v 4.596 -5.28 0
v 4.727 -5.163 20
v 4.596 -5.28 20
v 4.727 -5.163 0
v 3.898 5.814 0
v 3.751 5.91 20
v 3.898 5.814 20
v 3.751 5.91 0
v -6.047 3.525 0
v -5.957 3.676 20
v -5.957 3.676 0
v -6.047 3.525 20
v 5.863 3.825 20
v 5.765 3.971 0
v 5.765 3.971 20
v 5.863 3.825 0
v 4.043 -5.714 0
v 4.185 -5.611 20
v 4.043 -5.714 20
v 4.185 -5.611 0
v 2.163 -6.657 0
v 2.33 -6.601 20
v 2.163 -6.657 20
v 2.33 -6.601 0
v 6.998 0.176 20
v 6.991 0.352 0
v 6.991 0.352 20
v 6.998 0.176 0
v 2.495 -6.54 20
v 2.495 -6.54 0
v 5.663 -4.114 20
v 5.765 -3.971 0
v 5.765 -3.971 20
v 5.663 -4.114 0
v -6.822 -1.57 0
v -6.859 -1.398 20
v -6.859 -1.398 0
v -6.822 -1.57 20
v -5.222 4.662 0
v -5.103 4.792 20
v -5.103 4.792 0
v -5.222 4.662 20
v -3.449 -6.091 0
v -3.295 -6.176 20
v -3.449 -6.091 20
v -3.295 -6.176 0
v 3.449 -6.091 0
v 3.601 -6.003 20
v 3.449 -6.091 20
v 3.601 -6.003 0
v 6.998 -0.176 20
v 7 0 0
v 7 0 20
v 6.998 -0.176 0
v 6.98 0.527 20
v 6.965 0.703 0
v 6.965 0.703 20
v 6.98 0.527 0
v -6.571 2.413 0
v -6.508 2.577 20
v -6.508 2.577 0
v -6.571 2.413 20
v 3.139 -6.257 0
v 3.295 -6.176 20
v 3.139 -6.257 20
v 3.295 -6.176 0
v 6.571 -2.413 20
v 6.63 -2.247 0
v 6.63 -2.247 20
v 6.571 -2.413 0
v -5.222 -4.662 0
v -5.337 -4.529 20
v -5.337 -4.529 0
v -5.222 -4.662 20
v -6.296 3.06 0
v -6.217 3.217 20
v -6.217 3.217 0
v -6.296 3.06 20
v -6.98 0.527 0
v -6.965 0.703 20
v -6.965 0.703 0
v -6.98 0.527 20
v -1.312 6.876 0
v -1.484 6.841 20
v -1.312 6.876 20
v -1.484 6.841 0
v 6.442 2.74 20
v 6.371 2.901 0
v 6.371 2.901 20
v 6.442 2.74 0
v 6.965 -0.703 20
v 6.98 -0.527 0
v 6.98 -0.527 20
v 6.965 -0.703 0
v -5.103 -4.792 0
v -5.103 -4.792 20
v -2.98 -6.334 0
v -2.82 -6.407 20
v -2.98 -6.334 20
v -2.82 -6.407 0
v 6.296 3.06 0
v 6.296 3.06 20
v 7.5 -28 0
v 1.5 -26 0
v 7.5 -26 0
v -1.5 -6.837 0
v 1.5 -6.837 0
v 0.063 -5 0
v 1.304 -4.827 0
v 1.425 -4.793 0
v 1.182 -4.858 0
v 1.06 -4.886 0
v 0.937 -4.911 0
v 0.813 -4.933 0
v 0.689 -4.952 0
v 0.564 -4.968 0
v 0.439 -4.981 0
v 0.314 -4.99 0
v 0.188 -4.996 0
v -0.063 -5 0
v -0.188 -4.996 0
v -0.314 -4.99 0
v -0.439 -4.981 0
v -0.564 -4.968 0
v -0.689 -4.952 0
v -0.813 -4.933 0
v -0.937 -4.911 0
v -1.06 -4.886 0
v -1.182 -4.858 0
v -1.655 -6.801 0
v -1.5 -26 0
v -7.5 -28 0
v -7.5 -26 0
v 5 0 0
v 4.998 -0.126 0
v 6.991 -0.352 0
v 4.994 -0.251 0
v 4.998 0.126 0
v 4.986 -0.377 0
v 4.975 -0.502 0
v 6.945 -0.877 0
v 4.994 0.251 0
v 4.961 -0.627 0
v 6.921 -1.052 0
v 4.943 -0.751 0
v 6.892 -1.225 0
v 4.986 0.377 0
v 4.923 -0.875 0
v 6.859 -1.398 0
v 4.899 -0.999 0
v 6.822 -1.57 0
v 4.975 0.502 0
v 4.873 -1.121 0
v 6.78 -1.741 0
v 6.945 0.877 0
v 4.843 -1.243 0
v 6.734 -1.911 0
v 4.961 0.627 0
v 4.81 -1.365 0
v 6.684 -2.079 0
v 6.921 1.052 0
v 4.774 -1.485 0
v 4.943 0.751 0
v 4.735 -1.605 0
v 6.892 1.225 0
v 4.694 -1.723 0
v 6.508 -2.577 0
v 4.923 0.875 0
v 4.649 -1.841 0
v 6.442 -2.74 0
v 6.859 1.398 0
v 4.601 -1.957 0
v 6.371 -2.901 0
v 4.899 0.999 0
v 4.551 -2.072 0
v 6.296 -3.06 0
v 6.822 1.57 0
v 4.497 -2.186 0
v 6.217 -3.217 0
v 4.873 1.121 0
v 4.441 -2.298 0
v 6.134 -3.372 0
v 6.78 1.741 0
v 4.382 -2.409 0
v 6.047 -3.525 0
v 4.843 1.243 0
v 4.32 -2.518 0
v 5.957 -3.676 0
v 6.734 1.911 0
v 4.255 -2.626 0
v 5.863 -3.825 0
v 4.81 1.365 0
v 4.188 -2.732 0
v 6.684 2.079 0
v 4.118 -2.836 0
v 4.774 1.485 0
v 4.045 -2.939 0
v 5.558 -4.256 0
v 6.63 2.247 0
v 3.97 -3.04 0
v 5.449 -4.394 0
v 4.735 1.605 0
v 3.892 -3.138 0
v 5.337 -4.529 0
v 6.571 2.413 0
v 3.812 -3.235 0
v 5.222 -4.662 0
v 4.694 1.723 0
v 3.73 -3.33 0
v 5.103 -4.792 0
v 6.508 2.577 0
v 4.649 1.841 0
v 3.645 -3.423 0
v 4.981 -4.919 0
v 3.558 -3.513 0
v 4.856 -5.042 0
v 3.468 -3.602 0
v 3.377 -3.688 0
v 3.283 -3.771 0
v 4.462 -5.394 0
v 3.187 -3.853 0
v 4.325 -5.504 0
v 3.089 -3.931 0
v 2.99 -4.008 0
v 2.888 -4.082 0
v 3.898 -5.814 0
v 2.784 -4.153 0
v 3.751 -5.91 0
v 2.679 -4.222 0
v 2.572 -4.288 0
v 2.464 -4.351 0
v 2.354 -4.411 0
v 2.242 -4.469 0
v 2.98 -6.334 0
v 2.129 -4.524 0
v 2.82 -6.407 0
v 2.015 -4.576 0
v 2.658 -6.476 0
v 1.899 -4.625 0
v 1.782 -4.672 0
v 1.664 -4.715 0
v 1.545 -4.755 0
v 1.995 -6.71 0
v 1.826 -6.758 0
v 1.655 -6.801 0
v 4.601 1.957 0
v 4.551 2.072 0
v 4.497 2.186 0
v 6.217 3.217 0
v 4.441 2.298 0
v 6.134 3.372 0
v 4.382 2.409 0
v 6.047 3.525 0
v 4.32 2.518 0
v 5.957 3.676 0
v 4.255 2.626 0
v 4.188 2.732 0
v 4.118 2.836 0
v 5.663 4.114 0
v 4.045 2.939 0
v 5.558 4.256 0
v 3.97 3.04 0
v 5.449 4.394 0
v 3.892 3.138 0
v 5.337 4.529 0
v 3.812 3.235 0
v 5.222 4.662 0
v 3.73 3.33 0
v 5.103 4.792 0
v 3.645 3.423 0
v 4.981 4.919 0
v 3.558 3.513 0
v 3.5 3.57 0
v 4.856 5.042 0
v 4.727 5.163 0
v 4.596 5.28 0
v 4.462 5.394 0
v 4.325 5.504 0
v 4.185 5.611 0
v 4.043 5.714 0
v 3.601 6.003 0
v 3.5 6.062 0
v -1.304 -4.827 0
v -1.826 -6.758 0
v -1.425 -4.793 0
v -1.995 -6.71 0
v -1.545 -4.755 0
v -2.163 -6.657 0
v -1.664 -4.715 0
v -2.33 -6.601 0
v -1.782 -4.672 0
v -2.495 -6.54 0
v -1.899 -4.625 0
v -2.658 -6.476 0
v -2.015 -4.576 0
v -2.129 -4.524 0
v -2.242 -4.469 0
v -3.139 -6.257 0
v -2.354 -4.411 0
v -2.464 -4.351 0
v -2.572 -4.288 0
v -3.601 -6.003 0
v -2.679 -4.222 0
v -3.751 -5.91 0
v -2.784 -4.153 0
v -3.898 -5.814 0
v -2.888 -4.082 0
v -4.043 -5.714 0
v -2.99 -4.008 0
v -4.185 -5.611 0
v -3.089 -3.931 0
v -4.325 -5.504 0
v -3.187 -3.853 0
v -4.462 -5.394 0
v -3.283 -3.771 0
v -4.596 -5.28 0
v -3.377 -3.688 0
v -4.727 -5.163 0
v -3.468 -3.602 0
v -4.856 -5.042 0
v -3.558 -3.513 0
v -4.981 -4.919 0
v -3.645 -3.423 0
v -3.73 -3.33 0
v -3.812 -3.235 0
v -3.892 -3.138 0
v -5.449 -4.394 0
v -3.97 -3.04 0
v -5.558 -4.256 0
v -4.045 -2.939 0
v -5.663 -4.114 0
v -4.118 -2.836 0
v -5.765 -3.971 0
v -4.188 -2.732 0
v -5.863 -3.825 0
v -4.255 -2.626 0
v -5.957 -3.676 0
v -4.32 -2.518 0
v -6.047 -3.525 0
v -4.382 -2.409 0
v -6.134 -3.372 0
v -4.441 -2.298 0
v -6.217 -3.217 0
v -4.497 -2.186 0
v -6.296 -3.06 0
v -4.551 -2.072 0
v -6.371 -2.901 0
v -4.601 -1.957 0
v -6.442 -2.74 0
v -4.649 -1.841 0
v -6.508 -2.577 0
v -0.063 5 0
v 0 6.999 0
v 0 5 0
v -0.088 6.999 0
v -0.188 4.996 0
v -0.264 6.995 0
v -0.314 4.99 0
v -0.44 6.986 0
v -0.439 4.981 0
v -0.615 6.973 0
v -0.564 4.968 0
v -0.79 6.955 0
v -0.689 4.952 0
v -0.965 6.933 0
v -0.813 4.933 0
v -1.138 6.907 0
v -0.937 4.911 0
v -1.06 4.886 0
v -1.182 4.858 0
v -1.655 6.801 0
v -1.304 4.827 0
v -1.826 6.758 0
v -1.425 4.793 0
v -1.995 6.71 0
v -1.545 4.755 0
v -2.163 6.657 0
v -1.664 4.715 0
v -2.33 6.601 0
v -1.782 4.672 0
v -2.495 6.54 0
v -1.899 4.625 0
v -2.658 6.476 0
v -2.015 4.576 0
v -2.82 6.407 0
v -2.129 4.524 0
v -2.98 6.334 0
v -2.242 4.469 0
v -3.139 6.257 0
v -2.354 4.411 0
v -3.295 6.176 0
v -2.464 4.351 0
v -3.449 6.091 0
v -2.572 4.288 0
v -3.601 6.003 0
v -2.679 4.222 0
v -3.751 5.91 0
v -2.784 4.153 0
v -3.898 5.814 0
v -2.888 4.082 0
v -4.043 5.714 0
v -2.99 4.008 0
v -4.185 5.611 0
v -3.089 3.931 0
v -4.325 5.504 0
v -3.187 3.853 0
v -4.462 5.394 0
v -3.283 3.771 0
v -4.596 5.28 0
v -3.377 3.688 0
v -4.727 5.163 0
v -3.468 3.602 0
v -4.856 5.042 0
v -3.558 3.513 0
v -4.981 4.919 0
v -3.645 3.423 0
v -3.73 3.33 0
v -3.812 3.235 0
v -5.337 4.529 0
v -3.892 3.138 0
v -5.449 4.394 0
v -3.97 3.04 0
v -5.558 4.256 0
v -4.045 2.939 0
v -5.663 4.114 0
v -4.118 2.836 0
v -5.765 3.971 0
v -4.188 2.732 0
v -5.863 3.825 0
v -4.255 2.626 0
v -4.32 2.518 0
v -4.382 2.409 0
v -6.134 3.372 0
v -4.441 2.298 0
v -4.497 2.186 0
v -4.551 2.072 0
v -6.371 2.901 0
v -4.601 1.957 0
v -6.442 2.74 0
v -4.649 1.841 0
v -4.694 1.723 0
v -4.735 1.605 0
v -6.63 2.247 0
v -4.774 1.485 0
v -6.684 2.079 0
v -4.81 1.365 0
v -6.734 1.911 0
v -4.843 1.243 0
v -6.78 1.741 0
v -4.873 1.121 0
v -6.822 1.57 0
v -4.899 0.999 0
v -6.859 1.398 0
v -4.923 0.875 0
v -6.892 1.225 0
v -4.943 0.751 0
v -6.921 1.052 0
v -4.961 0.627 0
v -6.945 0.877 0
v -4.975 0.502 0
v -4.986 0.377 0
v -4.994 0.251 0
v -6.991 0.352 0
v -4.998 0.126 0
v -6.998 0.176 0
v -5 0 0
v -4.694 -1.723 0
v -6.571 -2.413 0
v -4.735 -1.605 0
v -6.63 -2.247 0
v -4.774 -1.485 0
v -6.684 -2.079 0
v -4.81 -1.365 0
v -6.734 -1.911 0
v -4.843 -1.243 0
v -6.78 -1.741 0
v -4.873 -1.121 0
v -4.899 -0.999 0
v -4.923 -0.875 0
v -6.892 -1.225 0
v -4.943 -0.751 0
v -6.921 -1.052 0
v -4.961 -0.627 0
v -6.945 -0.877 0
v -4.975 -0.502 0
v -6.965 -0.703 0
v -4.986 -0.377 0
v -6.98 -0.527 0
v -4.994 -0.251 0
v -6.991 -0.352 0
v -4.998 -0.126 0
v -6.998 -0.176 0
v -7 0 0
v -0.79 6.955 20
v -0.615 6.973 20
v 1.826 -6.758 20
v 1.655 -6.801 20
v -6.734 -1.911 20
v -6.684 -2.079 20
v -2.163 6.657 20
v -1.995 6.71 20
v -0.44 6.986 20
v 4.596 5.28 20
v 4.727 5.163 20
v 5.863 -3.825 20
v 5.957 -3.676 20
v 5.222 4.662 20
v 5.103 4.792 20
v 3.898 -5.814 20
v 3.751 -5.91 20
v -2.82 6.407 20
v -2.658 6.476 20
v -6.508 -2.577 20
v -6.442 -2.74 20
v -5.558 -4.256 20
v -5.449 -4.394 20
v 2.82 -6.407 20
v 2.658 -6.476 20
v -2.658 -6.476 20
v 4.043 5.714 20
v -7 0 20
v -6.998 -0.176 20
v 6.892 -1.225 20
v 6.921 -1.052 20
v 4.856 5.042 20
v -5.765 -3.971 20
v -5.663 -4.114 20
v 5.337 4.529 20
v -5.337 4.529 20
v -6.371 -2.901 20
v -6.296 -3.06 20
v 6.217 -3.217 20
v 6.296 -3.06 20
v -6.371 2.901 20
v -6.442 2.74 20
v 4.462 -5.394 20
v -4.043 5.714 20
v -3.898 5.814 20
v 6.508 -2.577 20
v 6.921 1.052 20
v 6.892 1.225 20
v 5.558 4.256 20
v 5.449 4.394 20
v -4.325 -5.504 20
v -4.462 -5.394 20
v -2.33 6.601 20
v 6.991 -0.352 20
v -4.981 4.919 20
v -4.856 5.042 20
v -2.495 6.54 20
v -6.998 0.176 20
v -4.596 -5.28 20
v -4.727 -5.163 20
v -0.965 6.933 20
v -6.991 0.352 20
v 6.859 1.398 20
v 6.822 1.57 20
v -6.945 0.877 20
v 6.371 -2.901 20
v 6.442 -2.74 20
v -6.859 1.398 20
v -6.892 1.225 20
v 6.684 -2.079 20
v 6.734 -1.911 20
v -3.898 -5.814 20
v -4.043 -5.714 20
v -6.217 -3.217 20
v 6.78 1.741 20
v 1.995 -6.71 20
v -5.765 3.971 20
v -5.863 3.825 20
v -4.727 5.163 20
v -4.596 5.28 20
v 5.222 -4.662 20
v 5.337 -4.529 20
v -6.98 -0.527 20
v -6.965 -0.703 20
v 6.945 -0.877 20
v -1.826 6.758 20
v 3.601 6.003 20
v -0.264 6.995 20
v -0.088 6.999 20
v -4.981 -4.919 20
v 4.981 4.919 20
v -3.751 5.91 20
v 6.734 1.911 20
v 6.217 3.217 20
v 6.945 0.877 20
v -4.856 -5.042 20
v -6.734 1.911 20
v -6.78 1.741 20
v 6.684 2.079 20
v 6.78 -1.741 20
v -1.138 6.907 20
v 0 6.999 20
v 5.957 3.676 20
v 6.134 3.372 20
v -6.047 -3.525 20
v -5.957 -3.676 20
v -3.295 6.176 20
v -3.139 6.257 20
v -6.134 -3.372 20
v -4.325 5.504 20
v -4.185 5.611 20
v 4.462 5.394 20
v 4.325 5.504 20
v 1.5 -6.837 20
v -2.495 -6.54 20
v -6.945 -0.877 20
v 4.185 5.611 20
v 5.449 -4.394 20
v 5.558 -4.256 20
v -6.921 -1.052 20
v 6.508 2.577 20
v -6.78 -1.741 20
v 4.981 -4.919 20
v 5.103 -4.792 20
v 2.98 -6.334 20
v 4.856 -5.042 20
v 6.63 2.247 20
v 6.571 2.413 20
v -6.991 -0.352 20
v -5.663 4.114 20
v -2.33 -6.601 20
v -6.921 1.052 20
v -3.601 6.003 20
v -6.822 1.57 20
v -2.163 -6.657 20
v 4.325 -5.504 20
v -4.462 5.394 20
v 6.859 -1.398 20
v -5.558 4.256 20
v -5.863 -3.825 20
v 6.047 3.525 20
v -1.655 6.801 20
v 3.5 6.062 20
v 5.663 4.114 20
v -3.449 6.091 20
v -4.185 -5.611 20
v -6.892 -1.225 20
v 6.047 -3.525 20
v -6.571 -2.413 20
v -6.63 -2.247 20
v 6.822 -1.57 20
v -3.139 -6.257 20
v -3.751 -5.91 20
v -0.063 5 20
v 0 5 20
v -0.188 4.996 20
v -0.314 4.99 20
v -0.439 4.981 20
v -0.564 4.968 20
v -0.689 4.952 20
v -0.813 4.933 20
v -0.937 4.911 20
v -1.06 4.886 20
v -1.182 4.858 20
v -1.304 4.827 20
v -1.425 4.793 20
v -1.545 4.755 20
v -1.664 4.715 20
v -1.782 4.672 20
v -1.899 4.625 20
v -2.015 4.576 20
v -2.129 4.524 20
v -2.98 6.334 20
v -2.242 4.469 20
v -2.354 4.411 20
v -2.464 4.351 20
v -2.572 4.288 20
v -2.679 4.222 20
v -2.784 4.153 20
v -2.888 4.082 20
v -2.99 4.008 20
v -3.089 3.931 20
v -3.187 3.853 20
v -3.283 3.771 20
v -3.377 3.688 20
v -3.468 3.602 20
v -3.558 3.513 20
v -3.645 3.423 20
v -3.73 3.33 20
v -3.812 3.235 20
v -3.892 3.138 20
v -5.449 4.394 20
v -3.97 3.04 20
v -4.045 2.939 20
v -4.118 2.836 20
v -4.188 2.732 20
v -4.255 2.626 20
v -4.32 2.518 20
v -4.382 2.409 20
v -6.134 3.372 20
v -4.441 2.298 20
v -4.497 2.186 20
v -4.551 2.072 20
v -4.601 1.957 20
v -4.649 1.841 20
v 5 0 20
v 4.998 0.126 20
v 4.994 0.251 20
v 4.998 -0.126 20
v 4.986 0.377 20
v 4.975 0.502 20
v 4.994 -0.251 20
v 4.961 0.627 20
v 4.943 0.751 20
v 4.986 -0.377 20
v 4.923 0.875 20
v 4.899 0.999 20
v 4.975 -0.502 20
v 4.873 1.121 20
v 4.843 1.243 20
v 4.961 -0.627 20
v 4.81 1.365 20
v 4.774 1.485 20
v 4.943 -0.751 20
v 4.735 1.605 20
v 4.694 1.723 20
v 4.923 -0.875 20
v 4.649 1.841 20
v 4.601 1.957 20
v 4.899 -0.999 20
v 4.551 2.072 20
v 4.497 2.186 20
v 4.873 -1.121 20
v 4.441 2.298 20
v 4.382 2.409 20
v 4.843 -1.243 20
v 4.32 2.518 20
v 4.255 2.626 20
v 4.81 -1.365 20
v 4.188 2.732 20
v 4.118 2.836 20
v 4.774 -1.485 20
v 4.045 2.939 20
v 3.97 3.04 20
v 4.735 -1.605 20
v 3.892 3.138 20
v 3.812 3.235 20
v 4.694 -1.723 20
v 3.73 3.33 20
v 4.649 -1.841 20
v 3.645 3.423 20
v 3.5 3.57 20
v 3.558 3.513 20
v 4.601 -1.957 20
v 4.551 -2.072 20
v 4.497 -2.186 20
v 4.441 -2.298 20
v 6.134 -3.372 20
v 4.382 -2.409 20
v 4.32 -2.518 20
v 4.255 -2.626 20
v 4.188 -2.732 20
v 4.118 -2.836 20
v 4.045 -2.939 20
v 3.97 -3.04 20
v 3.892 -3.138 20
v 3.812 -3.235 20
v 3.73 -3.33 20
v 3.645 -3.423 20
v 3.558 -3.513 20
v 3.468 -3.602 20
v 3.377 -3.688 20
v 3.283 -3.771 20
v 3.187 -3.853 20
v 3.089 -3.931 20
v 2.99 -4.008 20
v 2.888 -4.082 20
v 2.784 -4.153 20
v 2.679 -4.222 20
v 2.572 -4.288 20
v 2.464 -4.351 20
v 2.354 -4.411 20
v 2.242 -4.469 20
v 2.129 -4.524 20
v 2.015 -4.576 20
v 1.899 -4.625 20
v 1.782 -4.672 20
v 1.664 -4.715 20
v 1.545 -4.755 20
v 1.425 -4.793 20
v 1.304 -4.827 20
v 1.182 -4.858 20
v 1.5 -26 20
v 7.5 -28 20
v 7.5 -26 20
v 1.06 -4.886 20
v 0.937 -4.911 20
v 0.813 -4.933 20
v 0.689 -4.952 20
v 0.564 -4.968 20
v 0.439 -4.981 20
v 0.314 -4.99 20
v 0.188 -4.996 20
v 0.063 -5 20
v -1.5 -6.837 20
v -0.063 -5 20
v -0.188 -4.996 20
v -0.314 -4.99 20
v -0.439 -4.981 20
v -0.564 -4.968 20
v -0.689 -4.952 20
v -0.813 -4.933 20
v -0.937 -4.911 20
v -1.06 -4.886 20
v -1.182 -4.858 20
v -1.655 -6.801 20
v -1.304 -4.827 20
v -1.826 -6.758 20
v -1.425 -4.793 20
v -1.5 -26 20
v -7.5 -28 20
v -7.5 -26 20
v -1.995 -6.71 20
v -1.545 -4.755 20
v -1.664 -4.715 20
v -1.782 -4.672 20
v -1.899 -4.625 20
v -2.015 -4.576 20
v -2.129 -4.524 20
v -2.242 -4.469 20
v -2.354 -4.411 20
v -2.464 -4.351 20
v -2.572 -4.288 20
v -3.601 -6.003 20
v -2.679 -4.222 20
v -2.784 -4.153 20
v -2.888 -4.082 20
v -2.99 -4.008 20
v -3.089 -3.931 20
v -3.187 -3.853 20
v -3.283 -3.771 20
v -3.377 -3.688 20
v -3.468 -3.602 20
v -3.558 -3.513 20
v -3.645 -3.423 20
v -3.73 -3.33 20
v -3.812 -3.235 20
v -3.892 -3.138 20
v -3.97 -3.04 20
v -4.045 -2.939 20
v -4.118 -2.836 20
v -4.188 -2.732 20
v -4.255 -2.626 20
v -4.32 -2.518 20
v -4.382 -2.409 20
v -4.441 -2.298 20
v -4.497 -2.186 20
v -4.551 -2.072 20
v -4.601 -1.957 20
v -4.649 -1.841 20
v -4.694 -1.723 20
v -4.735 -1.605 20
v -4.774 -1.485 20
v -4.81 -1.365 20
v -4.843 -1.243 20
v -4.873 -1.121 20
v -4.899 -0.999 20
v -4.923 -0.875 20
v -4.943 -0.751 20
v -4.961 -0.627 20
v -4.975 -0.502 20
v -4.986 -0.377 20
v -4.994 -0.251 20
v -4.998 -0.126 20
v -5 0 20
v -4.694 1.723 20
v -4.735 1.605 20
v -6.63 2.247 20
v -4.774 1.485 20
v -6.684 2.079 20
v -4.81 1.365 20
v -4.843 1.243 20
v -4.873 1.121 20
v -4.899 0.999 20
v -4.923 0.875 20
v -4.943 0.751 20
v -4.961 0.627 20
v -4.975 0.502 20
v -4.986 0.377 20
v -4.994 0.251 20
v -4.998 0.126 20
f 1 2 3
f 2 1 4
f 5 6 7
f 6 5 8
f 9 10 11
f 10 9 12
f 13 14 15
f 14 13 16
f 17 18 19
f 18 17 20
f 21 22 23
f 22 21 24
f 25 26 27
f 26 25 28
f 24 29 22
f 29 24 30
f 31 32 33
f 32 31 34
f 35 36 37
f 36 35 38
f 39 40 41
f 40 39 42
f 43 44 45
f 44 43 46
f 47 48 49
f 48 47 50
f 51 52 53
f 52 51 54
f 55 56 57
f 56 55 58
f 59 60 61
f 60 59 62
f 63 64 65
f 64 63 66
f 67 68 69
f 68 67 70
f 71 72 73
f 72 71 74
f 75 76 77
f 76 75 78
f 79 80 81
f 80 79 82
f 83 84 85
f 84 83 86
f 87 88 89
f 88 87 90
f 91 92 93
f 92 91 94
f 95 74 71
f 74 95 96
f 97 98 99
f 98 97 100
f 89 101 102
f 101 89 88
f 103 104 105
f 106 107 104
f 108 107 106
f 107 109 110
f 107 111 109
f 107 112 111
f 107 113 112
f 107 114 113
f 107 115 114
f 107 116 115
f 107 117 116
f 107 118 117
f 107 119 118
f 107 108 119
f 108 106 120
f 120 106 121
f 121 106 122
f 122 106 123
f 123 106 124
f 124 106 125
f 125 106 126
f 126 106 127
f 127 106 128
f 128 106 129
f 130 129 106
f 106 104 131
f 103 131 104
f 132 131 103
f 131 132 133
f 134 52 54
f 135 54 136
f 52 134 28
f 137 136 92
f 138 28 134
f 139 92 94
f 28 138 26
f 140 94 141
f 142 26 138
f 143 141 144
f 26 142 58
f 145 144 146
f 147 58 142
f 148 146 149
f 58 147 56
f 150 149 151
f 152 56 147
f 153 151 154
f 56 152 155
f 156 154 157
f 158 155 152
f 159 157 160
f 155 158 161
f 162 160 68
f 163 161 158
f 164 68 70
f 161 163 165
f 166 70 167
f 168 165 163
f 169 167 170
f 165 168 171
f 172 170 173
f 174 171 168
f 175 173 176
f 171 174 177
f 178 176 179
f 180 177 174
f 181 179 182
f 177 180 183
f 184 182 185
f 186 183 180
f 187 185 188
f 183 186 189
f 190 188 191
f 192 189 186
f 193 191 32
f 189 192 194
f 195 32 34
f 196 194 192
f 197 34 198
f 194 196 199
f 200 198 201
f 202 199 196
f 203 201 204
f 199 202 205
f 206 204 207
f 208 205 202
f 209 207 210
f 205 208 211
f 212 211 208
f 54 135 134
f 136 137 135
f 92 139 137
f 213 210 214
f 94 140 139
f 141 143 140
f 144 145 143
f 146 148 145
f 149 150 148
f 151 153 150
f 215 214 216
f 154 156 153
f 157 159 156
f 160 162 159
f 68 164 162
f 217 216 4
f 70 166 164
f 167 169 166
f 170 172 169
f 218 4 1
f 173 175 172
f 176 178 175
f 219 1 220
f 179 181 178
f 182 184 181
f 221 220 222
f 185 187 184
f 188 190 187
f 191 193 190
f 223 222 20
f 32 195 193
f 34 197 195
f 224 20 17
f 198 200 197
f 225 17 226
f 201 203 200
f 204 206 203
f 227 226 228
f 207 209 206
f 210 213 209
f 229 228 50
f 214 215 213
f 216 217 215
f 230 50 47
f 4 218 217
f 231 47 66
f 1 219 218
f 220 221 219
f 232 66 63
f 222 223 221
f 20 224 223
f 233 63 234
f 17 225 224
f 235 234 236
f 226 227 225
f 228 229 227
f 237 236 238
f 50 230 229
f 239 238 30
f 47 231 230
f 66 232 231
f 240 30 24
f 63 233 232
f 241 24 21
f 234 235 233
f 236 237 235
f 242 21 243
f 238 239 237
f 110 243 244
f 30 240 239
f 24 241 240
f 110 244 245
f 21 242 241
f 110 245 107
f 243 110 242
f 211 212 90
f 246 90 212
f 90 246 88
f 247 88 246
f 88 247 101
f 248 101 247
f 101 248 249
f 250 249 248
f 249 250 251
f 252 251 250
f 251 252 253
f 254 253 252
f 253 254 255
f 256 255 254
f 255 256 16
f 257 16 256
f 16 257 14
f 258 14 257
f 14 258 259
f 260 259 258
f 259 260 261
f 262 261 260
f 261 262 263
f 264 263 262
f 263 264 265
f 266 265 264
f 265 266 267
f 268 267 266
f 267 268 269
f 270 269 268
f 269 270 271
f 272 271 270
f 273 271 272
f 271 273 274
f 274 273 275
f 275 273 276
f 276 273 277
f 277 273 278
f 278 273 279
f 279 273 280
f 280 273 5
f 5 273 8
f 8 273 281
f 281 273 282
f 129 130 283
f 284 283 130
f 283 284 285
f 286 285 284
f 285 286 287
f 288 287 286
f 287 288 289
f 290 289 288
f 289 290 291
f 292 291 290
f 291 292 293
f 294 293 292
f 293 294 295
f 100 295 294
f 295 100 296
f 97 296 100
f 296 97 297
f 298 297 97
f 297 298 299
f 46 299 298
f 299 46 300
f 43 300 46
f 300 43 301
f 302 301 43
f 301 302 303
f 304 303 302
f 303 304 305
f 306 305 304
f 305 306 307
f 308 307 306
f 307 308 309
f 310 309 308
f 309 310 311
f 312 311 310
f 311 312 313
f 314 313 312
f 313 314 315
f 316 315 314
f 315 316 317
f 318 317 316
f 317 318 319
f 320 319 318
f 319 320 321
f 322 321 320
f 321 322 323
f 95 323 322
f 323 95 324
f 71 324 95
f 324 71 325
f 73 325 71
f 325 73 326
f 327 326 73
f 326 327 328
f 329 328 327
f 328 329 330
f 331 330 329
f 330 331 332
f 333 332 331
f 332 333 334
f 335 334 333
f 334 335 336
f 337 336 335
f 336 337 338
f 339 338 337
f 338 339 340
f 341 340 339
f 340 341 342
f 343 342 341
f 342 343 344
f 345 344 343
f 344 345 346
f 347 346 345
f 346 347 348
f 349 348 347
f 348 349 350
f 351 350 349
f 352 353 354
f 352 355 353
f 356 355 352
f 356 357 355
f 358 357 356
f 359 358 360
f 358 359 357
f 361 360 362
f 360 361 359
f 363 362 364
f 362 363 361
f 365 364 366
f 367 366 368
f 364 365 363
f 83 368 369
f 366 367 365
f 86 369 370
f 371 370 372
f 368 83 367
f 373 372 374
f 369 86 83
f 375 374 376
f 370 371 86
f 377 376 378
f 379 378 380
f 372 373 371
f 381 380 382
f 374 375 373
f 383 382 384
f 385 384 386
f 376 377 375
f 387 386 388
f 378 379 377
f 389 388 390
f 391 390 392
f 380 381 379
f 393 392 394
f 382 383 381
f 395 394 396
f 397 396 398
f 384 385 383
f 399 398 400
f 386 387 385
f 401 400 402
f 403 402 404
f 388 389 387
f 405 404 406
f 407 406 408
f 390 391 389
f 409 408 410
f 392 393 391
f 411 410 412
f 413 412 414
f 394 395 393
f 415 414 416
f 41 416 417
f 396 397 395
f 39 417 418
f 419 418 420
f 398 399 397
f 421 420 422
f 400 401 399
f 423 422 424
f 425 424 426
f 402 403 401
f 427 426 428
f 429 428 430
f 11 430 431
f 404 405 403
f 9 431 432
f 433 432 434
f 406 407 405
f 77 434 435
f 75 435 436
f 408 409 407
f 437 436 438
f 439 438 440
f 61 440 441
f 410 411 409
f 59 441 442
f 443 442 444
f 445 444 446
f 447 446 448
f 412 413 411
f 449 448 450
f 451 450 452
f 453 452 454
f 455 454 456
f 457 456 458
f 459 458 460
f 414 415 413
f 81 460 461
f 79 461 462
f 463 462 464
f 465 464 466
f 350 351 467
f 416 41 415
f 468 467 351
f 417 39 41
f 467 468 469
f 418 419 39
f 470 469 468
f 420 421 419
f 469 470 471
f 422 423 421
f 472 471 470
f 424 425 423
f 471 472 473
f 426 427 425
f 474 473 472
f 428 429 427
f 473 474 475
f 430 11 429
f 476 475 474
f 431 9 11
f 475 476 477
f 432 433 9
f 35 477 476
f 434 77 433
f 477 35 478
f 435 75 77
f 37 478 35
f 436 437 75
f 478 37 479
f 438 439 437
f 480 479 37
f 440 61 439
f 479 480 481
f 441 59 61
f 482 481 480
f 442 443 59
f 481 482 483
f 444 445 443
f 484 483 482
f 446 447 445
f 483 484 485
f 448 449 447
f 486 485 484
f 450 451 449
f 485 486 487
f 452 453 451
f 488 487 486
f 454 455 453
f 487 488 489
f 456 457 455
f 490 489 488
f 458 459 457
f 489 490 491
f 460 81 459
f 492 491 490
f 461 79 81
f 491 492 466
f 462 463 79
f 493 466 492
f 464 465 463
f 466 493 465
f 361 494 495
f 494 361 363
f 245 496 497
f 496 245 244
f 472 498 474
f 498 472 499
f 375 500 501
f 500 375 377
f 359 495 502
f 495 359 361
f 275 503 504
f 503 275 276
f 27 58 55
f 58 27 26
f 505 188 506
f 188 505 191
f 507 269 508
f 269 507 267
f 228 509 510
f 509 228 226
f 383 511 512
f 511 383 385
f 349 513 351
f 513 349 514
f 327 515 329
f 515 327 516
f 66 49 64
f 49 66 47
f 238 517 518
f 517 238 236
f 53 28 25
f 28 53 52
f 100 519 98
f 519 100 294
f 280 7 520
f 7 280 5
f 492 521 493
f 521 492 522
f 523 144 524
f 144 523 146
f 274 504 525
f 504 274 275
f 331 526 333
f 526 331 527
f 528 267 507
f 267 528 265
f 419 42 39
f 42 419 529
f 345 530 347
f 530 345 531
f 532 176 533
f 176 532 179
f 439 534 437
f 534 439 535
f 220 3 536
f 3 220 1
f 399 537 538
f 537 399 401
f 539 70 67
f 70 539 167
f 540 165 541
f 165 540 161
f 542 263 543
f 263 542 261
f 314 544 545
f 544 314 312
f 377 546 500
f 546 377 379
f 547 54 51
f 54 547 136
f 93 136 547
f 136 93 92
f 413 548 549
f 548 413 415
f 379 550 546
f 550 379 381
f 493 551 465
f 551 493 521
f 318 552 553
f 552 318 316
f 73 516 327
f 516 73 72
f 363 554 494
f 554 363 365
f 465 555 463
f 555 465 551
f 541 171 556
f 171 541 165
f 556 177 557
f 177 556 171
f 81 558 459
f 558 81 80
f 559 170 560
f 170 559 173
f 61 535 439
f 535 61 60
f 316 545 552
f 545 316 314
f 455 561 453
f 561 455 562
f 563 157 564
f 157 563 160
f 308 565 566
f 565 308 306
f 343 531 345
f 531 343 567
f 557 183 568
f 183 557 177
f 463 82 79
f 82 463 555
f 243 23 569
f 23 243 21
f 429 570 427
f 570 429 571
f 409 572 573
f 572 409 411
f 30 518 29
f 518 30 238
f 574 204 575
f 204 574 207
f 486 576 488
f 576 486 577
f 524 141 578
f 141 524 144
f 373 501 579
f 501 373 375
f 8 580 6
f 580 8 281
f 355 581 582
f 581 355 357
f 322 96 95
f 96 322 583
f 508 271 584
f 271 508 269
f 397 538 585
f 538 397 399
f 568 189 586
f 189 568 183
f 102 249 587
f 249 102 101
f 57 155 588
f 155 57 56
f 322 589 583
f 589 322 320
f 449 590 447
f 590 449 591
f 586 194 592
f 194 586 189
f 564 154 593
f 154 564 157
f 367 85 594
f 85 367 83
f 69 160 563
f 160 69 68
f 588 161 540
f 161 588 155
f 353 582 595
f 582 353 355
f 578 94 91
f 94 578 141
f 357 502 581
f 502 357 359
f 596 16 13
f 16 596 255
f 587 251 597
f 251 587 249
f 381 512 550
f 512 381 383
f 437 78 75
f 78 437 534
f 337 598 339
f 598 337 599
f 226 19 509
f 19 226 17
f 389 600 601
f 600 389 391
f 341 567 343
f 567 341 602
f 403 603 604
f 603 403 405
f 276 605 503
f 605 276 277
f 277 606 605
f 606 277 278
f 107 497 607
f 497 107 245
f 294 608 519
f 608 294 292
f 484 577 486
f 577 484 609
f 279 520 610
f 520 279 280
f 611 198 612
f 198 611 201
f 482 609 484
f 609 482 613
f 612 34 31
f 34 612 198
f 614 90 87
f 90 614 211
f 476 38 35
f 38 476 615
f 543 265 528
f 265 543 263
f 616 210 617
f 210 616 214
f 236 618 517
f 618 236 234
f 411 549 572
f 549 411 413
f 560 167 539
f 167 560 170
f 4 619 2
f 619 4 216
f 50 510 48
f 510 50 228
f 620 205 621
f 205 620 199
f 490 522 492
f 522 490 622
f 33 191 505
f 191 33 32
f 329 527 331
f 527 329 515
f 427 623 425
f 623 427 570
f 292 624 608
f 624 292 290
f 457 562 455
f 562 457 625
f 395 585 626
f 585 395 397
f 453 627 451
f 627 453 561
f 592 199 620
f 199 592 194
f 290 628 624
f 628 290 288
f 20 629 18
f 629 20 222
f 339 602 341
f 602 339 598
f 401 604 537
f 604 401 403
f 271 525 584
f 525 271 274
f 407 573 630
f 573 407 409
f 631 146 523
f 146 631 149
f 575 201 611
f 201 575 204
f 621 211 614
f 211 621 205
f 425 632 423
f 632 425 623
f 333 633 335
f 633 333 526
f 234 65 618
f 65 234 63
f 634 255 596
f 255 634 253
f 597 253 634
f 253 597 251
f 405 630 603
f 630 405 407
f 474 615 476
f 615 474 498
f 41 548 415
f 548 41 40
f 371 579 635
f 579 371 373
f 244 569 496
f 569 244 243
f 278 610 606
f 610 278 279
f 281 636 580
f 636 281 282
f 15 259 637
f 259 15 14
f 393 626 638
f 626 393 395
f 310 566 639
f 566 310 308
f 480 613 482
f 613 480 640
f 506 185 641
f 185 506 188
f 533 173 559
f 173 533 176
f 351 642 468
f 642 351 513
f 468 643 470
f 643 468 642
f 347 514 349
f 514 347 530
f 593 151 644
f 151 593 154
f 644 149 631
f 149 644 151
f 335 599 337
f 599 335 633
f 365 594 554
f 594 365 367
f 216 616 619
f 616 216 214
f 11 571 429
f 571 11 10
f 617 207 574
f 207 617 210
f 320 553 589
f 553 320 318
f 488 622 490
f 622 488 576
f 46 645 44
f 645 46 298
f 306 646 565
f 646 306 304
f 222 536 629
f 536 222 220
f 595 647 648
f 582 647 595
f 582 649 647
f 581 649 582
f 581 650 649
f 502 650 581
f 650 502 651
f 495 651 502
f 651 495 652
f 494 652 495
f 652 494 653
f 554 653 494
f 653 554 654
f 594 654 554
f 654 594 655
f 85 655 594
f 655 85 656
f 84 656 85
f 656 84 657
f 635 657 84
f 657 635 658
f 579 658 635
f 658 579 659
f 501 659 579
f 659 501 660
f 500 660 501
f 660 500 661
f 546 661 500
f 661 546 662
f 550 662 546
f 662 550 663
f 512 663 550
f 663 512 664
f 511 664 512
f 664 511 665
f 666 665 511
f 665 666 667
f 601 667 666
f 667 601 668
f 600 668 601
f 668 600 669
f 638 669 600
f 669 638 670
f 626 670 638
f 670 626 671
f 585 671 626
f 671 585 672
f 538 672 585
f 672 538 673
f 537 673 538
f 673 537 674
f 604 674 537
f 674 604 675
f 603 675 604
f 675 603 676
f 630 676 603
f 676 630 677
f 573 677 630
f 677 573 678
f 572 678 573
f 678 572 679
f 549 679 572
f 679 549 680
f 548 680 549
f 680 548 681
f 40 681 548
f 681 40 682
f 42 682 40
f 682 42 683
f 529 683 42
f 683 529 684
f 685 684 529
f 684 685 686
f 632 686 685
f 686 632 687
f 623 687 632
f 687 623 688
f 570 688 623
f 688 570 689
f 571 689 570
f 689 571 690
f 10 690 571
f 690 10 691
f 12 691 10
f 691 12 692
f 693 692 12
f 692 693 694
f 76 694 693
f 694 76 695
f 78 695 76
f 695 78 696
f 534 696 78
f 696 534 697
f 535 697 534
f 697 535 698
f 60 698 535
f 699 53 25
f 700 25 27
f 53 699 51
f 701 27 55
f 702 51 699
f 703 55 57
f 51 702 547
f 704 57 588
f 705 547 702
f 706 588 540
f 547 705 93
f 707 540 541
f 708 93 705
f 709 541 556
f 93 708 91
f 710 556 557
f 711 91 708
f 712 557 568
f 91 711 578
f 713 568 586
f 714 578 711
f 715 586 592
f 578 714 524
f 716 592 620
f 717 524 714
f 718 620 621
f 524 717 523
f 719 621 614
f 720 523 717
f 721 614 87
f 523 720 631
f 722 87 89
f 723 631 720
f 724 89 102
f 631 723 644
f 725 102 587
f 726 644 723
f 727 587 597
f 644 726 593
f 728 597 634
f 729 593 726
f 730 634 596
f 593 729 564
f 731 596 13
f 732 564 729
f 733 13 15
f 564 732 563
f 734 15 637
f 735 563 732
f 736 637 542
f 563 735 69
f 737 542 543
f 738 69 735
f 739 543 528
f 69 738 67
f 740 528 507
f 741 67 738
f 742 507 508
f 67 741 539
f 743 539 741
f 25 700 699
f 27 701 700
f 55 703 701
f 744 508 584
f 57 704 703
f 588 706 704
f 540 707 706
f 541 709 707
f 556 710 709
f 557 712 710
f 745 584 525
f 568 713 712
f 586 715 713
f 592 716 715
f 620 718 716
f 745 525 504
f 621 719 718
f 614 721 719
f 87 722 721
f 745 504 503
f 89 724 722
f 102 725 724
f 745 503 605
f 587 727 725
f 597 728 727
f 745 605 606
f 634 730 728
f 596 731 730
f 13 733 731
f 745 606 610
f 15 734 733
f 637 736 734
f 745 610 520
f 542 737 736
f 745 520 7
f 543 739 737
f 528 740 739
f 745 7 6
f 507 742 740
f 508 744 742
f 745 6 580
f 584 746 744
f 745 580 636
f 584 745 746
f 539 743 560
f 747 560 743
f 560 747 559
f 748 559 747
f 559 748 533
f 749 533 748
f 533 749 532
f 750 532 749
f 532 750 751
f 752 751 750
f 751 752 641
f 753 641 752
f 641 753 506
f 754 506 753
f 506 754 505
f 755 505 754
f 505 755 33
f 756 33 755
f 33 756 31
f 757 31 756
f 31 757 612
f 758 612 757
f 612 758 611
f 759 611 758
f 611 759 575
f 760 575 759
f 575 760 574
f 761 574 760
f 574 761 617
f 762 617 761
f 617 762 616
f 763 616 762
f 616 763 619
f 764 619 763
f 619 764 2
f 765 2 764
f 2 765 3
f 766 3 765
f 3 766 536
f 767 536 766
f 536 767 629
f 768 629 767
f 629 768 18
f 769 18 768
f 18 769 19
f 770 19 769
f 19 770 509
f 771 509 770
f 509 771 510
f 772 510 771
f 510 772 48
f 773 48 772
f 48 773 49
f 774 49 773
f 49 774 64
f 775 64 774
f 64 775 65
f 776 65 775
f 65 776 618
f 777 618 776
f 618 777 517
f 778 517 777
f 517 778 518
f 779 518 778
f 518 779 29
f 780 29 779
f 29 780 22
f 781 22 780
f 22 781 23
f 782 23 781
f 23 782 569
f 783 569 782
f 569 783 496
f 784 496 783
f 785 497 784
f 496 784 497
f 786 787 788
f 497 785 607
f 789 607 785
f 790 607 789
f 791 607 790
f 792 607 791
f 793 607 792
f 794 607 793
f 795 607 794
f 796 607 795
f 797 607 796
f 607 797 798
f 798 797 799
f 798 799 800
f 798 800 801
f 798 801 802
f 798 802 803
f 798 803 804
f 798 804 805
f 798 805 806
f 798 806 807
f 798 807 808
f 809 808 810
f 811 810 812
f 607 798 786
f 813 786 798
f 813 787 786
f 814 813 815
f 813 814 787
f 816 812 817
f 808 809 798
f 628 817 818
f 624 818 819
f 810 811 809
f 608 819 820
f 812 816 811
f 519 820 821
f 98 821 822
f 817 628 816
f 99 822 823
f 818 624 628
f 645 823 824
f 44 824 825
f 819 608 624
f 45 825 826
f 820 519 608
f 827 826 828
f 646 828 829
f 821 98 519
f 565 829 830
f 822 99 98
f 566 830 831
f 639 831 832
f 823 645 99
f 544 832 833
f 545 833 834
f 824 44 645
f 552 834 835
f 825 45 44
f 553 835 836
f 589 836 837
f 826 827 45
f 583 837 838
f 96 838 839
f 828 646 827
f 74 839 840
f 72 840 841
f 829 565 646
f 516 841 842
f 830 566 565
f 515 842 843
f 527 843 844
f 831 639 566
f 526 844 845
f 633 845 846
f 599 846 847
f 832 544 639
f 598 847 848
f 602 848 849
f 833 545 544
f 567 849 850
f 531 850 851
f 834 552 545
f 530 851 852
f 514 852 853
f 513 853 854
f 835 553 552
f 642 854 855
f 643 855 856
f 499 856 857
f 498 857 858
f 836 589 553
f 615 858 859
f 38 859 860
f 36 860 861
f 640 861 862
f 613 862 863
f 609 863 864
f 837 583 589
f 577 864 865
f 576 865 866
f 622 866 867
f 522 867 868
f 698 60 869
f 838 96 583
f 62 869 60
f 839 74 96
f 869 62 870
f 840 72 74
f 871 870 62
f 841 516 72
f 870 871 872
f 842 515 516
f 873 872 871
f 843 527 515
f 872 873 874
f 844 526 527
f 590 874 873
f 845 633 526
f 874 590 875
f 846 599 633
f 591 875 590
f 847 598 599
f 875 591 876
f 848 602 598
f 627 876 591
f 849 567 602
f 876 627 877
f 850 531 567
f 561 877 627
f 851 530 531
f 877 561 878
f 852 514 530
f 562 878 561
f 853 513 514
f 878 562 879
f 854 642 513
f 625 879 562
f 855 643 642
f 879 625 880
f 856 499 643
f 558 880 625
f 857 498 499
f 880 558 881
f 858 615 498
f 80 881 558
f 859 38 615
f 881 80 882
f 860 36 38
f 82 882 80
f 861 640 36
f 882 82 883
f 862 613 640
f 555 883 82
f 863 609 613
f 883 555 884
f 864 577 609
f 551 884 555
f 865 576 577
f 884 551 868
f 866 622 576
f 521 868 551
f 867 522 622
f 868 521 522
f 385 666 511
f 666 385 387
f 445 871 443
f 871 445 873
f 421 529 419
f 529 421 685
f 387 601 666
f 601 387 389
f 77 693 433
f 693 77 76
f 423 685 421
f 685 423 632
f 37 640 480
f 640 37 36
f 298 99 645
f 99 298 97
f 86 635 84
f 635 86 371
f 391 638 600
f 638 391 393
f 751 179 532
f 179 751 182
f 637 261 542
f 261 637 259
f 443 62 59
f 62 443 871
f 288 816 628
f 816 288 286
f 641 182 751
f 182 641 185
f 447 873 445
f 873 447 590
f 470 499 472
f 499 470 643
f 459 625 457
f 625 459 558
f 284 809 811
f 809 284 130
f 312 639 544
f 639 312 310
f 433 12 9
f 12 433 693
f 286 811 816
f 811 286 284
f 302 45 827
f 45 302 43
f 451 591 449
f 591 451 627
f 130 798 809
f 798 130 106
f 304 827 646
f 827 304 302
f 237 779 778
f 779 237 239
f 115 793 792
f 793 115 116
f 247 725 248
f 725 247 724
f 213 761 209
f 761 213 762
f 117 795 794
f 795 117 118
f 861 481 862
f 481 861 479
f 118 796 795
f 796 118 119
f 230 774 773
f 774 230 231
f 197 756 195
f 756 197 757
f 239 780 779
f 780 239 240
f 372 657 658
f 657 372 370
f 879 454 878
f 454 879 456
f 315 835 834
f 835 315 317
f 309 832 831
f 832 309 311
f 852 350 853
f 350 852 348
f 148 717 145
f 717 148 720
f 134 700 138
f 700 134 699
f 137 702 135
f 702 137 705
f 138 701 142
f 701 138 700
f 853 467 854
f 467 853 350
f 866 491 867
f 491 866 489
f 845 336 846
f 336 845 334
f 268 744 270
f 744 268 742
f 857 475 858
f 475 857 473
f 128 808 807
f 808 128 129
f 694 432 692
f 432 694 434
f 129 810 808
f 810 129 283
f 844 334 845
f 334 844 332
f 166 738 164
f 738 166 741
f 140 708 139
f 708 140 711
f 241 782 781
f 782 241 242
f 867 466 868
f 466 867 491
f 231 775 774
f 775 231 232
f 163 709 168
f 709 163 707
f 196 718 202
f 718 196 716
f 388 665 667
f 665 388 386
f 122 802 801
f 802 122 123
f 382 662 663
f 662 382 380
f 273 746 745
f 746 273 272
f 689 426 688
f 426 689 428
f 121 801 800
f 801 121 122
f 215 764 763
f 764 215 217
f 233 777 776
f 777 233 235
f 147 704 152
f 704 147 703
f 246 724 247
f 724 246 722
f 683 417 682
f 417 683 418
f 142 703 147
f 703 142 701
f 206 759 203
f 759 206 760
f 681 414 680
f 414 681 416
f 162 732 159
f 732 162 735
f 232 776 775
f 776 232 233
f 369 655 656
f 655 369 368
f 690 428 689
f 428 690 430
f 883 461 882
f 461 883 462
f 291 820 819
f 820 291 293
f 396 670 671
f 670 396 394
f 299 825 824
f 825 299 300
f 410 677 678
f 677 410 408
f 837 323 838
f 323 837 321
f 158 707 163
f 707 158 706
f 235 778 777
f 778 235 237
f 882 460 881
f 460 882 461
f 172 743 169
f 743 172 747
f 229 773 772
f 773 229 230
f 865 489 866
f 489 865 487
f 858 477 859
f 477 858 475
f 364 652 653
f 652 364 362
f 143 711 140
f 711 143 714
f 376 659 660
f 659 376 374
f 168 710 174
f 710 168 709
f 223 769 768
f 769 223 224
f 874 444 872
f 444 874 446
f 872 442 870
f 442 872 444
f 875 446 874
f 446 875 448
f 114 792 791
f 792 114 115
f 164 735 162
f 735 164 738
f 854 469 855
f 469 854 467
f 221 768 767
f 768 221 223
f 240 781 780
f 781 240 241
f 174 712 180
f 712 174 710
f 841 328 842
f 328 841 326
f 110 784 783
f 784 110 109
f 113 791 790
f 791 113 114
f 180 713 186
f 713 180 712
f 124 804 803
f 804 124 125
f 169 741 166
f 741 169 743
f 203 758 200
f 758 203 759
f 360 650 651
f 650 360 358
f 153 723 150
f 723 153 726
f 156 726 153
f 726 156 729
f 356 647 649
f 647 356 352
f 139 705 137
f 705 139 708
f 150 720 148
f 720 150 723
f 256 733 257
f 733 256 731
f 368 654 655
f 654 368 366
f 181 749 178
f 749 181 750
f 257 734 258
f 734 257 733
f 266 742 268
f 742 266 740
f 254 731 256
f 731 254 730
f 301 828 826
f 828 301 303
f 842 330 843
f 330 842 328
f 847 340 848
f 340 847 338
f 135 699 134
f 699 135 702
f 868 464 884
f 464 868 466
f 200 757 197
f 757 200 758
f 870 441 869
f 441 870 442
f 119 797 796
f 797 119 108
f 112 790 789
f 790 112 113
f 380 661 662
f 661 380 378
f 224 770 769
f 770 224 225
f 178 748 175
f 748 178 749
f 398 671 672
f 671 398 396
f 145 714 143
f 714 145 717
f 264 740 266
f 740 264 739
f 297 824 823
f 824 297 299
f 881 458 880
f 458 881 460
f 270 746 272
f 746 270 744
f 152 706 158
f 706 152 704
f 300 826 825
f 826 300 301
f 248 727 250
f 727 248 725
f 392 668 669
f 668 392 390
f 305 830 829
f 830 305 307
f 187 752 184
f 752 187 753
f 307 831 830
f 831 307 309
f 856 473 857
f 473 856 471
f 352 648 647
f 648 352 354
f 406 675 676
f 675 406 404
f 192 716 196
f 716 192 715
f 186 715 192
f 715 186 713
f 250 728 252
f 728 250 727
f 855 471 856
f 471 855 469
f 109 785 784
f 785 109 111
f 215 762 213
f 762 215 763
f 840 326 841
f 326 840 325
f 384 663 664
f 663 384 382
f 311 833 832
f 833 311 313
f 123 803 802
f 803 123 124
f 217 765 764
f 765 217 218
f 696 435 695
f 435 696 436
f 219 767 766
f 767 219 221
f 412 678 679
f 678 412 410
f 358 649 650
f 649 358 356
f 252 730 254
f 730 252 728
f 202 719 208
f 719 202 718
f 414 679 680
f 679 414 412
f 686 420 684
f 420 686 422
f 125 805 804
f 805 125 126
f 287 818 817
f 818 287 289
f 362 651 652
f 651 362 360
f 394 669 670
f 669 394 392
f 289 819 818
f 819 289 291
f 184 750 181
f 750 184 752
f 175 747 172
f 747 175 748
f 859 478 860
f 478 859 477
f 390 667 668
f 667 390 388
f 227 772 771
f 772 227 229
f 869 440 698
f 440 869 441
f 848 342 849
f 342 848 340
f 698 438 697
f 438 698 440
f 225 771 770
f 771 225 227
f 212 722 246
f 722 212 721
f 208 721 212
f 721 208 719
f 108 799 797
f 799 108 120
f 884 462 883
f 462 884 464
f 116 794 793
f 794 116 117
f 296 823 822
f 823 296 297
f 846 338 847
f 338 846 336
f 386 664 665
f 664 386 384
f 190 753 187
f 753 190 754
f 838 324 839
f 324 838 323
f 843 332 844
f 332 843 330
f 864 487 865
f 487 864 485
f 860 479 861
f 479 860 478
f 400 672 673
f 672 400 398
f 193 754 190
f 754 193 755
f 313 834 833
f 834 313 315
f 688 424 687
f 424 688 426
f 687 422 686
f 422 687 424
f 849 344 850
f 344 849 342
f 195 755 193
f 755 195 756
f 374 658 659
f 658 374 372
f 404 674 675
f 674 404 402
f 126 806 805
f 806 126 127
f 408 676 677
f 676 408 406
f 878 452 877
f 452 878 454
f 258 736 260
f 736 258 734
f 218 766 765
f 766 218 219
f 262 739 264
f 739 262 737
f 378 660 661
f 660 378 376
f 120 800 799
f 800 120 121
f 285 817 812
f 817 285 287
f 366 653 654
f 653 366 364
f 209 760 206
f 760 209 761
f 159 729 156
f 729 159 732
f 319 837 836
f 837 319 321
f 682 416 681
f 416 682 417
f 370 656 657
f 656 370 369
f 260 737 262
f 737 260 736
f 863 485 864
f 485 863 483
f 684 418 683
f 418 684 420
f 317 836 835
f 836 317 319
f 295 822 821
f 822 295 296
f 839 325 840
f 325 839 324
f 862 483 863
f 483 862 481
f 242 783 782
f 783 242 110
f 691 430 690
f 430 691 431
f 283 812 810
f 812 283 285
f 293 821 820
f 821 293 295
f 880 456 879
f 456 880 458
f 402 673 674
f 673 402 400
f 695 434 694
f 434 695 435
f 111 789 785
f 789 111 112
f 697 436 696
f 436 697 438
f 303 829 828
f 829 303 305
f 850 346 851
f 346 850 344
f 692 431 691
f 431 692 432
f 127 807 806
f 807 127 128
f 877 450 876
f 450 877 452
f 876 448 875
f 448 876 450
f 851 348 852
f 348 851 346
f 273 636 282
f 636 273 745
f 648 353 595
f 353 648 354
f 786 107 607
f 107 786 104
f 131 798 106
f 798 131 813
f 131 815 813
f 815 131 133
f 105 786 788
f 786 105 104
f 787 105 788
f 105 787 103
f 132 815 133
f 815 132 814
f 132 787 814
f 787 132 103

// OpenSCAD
$fn=250;
CYLINDER_WALL = 2;
INSIDE_DIAMETER = 10;
GAP = 3.5;
PILLAR = 3;
PILLAR_HEIGHT=20;

WIDTH = 20;
BASE = 15;

union()
{
	difference()
	{
		cylinder(h = WIDTH, d = INSIDE_DIAMETER + 2*CYLINDER_WALL);
		cylinder(h = WIDTH, d = INSIDE_DIAMETER);
		cube([GAP,INSIDE_DIAMETER,WIDTH]);
	}
	translate([-PILLAR/2,-INSIDE_DIAMETER/2-CYLINDER_WALL-PILLAR_HEIGHT+1,0])cube([PILLAR,PILLAR_HEIGHT,WIDTH]);
	translate([-BASE/2,-INSIDE_DIAMETER/2-2*CYLINDER_WALL-PILLAR_HEIGHT+1,0])cube([BASE,CYLINDER_WALL,WIDTH]);
	
}
